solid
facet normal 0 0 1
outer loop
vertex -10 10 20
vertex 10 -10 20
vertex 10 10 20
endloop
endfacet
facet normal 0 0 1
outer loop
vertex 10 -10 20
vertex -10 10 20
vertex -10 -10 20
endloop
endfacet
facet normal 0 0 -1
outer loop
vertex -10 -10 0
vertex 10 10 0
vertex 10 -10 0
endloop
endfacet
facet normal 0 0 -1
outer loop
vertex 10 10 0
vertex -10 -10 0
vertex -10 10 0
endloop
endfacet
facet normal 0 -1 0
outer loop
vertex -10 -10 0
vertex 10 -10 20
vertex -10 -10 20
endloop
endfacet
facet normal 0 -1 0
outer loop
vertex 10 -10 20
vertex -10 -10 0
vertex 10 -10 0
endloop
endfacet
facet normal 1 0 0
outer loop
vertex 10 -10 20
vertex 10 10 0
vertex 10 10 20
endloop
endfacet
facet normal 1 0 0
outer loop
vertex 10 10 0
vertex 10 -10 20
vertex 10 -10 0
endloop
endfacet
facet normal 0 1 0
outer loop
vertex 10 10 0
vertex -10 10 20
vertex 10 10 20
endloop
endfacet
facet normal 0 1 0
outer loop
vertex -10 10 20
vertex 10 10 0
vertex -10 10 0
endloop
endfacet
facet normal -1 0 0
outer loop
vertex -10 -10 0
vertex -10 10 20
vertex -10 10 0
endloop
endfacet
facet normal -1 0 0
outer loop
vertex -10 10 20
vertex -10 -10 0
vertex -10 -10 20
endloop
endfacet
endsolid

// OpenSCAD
// The test print of "Print on a part": a cube, then a cross on its top in another color. The two
// parts are in one frame, so "Place as in the files" puts the cross on the cube.
//
//   part = "cube"   job 1: the cube, a plain print. Take it off the bed.
//   part = "cross"  job 2: the cross. The tool adds a holder (the pocket) around the cube. The print
//                   pauses after the holder: put the cube in it, change the filament, check the
//                   height, and resume.

part = "cube";

SIZE = 20;    // the cube, mm
RAISE = 1;    // the height of the cross over the top of the cube
ARM = 14;     // the length of the cross
WIDE = 3;     // the width of the arms

module cube_part() { translate([-SIZE / 2, -SIZE / 2, 0]) cube(SIZE); }

module cross_part() {
    translate([0, 0, SIZE]) linear_extrude(RAISE) {
        square([ARM, WIDE], center = true);
        square([WIDE, ARM], center = true);
    }
}

if (part == "cube") cube_part();
else if (part == "cross") cross_part();
else if (part == "all") { color("gray") cube_part(); color("red") cross_part(); }
